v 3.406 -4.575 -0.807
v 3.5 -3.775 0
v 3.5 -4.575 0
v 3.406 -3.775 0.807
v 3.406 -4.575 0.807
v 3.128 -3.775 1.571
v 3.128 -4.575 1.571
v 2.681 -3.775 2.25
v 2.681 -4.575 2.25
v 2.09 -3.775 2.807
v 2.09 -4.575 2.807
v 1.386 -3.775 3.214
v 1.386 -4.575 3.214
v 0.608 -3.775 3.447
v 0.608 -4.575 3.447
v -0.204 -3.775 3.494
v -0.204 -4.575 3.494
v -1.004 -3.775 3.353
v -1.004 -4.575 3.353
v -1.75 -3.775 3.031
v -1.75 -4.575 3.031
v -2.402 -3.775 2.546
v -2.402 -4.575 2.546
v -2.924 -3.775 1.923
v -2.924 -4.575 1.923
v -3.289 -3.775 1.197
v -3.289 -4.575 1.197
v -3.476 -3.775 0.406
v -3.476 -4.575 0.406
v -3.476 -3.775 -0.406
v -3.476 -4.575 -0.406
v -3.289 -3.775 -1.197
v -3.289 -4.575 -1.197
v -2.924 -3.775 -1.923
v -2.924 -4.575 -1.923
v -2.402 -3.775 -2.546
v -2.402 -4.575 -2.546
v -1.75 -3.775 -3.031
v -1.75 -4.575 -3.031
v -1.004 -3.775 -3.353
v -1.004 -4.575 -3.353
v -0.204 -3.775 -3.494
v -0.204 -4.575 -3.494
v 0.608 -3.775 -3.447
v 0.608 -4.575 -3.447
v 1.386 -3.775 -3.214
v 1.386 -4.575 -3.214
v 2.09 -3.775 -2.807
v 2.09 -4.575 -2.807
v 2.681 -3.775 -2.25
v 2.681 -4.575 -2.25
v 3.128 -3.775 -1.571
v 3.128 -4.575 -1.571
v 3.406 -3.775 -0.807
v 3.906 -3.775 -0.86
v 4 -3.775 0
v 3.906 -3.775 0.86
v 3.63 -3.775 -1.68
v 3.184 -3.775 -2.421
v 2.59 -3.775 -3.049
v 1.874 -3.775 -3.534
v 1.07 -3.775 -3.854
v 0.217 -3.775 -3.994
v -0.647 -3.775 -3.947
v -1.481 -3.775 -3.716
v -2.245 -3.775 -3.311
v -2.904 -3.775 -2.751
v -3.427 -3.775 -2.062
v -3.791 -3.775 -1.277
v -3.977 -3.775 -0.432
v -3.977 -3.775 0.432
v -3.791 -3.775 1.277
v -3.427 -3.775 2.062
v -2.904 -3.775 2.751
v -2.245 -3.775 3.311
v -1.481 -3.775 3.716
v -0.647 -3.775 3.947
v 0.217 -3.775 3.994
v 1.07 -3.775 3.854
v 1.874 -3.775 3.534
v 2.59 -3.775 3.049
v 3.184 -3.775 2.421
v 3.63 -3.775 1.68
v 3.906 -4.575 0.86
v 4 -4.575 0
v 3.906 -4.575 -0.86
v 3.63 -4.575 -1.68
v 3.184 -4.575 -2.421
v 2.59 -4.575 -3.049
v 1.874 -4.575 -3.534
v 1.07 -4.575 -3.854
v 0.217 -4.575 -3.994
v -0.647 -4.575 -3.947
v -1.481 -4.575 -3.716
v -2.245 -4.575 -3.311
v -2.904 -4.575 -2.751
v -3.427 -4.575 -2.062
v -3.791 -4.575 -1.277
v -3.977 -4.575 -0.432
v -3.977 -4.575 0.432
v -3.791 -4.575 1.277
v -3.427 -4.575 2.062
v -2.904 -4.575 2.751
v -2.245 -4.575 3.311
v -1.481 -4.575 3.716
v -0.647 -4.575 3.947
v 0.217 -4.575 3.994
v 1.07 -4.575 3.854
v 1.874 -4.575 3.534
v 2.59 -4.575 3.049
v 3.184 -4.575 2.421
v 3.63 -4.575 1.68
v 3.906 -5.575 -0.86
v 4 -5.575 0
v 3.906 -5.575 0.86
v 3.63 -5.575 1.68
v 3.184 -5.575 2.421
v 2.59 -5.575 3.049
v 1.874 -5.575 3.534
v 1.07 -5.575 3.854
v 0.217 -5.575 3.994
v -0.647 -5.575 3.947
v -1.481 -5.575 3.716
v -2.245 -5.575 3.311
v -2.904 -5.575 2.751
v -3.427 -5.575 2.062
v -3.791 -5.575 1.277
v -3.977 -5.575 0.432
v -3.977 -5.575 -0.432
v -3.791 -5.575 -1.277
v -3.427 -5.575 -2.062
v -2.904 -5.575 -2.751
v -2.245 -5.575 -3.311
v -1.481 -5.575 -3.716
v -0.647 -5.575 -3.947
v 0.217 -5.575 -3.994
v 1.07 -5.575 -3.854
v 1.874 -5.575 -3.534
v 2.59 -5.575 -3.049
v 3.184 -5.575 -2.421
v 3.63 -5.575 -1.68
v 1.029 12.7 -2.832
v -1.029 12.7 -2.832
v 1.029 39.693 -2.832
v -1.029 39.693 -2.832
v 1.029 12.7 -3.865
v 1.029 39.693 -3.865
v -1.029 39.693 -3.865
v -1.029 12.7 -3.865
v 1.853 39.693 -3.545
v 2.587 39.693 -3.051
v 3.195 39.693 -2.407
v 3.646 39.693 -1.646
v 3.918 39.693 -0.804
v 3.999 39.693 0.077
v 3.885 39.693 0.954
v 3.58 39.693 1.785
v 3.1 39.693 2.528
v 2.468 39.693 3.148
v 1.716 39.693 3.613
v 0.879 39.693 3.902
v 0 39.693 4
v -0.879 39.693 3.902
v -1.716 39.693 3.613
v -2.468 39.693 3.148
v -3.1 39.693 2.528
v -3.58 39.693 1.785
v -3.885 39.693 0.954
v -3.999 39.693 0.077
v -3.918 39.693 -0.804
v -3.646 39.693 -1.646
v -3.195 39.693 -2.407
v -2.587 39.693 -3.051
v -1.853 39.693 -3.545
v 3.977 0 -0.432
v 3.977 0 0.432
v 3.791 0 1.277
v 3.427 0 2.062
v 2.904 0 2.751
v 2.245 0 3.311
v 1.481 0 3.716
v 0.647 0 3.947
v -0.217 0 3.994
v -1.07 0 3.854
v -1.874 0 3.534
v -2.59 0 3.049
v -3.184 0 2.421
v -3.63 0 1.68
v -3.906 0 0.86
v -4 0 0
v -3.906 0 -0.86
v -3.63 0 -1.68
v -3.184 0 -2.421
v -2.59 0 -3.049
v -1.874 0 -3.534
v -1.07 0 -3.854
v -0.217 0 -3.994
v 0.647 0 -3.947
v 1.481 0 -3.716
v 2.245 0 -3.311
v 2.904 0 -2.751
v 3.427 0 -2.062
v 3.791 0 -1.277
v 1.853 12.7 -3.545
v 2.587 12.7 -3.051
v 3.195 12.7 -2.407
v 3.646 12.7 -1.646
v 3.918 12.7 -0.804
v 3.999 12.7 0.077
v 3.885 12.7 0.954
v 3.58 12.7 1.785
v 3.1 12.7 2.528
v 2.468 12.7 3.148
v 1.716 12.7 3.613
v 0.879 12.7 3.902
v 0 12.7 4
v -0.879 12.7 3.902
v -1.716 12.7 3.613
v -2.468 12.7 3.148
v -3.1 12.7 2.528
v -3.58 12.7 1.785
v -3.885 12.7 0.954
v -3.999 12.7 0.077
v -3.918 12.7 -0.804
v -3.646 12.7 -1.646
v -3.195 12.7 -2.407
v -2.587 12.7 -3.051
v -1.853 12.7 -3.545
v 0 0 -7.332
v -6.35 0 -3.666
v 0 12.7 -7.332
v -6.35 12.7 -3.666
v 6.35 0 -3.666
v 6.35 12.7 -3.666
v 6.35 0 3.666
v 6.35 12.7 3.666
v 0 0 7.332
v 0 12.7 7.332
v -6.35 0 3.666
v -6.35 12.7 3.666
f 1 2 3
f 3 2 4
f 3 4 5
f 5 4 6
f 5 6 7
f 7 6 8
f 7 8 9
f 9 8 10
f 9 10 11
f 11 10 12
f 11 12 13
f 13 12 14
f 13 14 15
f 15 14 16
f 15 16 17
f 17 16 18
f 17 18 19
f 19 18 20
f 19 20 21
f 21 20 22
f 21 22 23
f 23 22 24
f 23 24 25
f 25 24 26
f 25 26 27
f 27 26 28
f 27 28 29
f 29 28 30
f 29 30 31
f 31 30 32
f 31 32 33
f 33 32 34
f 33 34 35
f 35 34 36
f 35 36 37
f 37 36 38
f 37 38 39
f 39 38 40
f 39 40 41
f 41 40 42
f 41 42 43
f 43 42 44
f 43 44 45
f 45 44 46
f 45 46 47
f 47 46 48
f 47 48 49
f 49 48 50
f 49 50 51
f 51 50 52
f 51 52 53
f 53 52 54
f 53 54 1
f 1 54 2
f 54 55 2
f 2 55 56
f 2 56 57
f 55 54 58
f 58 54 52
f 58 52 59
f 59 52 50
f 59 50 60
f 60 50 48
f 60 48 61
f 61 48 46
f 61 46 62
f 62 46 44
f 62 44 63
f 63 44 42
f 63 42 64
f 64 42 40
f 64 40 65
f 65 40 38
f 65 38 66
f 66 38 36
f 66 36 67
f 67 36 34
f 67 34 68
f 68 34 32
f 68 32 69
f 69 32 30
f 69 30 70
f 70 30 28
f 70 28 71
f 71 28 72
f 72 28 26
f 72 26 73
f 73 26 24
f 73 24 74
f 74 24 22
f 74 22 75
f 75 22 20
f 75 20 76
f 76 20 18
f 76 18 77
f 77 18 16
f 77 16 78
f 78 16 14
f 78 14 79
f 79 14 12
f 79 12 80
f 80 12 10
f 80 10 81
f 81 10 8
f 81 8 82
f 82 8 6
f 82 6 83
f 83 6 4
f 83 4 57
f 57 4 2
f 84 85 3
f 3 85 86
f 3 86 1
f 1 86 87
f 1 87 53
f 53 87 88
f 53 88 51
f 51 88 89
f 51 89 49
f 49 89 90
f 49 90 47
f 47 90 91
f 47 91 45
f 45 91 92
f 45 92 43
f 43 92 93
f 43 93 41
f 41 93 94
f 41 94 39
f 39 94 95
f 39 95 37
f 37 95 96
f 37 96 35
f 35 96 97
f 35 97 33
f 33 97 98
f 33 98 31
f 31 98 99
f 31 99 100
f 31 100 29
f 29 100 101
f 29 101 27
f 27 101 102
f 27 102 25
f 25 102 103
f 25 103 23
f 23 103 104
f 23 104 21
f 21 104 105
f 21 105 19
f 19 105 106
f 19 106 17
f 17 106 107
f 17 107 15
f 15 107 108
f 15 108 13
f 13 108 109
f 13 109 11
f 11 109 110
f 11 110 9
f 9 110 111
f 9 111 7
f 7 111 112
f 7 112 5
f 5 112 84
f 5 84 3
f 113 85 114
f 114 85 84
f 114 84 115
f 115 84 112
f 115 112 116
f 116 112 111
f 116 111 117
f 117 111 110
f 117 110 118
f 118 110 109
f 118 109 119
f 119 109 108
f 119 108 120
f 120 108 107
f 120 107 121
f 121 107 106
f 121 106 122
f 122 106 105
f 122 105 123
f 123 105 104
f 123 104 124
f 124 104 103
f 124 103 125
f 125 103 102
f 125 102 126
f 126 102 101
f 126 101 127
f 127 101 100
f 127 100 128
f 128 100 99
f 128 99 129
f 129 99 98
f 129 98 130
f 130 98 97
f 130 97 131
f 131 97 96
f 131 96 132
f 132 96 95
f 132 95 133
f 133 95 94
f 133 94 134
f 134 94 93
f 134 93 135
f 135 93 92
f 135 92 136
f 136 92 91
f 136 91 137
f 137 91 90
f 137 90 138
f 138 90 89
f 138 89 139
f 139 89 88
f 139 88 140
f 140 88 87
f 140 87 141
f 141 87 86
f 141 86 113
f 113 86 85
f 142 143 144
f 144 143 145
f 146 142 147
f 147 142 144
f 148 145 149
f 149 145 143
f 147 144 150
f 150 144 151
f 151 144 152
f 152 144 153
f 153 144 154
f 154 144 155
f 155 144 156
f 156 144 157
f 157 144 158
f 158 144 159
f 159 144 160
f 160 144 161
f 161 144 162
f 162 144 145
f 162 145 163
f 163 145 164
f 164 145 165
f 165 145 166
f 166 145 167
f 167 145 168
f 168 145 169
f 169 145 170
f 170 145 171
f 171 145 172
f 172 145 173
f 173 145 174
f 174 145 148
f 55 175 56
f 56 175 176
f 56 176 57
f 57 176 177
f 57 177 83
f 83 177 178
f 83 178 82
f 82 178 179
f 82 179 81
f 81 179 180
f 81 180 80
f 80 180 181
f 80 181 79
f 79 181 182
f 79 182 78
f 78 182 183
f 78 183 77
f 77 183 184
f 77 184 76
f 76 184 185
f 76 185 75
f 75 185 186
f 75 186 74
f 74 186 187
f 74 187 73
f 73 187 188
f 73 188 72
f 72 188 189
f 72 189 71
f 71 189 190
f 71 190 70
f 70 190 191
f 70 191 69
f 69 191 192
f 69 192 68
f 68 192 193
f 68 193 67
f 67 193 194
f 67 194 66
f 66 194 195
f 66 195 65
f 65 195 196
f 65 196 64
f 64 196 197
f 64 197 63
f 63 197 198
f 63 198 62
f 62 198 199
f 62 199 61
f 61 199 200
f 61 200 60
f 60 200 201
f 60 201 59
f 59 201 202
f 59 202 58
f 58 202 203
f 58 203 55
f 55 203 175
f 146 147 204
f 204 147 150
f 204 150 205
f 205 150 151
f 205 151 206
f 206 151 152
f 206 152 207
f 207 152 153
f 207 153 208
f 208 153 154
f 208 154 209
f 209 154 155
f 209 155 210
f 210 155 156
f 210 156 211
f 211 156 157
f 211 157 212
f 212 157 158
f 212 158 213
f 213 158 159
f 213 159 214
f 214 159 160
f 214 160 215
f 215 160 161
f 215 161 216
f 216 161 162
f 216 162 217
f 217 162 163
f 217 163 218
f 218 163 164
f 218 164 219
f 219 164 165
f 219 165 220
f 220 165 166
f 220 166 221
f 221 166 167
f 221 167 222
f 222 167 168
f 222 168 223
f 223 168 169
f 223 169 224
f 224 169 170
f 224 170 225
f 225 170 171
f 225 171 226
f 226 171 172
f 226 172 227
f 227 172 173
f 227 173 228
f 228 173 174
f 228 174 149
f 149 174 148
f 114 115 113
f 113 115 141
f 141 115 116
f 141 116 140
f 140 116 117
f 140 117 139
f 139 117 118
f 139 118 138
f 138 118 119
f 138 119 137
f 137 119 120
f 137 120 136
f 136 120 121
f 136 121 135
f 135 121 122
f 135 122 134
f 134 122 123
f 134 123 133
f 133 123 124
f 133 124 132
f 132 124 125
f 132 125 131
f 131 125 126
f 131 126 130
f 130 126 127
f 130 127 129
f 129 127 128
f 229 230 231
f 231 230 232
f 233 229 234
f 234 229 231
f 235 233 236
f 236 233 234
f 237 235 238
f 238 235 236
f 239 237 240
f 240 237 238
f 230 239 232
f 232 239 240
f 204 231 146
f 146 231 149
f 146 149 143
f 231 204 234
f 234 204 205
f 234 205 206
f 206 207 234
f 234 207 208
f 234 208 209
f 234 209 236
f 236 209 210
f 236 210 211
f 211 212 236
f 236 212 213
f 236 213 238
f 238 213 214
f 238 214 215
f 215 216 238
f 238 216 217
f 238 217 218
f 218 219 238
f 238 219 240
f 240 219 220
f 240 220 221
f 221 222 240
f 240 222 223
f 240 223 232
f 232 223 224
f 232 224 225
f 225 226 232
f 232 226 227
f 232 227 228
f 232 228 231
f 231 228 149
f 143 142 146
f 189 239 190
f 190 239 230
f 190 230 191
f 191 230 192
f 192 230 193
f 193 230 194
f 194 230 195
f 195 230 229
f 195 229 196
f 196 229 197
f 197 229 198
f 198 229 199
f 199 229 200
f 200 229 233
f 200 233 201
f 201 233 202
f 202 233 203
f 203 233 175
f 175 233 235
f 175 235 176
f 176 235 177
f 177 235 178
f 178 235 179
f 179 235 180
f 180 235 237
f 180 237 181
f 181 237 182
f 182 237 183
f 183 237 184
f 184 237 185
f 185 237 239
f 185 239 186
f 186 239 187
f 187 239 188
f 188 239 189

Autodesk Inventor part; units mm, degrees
ref_plane "YZ Plane" through (0, 0, 0) normal (1, 0, 0) x (0, 1, 0)
ref_plane "XZ Plane" through (0, 0, 0) normal (0, 1, 0) x (-1, 0, 0)
ref_plane "XY Plane" through (0, 0, 0) normal (0, 0, 1) x (1, 0, 0)
sketch "Sketch1" plane through (0, 0, 0) normal (0, 1, 0) x (-1, 0, 0)
  line L0 (0, -7.3323) -> (-6.35, -3.6662)
  line L1 (-6.35, -3.6662) -> (-6.35, 3.6662)
  line L2 (-6.35, 3.6662) -> (0, 7.3323)
  line L3 (0, 7.3323) -> (6.35, 3.6662)
  line L4 (6.35, 3.6662) -> (6.35, -3.6662)
  line L5 (6.35, -3.6662) -> (0, -7.3323)
  point P0 (0, 0)
  point P1 (0, 0)
  dimension "d0" = 12.7
extrude "Extrusion1" add sketch "Sketch1" along normal blind 12.7
sketch "Sketch2" plane through (0, 12.7, 0) normal (0, 1, 0) x (1, 0, 0)
  circle A0 centre (0, 0) radius 4
  dimension "d3" = 8
extrude "Extrusion2" add sketch "Sketch2" along normal blind 26.9926 and the other way blind 18.275
sketch "Sketch3" plane through (0, 39.6926, 0) normal (0, 1, 0) x (1, 0, 0)
  line L0 (-1.0287, 4) -> (1.0287, 4)
  line L1 (1.0287, 4) -> (1.0287, 2.8316)
  line L2 (1.0287, 2.8316) -> (-1.0287, 2.8316)
  line L3 (-1.0287, 2.8316) -> (-1.0287, 4)
  line L4 (0, 0) -> (0, 9.4373)
  circle A0 centre (0, 0) radius 4 construction
  circle A1 centre (0, 0) radius 4 construction
  dimension "d6" = 2.0574
  dimension "d8" = 1.1684
extrude "Extrusion3" cut sketch "Sketch3" against normal up to surface (26.9926 mm away)
sketch "Sketch4" plane through (0, 0, 0) normal (0, 0, 1) x (1, 0, 0)
  line L0 (4, -5.575) -> (4, 0) projected
  line L1 (4, -4.575) -> (3.5, -4.575)
  line L2 (3.5, -4.575) -> (3.5, -3.775)
  line L3 (3.5, -3.775) -> (4, -3.775)
  line L4 (4, -3.775) -> (4, -4.575)
  line L5 (0, -5.575) -> (0, 6.0324)
  line L6 (-4, -5.575) -> (4, -5.575) projected
  point P0 (0, 0)
  point P1 (4, -3.775)
  dimension "d13" = 0.8
  dimension "d14" = 7
  dimension "d16" = 1
revolve "Revolution1" cut sketch "Sketch4" angle 360 about axis through (0, -5.575, 0) along (0, 1, 0)
properties part number "Gear Shaft connector" material "Steel"
